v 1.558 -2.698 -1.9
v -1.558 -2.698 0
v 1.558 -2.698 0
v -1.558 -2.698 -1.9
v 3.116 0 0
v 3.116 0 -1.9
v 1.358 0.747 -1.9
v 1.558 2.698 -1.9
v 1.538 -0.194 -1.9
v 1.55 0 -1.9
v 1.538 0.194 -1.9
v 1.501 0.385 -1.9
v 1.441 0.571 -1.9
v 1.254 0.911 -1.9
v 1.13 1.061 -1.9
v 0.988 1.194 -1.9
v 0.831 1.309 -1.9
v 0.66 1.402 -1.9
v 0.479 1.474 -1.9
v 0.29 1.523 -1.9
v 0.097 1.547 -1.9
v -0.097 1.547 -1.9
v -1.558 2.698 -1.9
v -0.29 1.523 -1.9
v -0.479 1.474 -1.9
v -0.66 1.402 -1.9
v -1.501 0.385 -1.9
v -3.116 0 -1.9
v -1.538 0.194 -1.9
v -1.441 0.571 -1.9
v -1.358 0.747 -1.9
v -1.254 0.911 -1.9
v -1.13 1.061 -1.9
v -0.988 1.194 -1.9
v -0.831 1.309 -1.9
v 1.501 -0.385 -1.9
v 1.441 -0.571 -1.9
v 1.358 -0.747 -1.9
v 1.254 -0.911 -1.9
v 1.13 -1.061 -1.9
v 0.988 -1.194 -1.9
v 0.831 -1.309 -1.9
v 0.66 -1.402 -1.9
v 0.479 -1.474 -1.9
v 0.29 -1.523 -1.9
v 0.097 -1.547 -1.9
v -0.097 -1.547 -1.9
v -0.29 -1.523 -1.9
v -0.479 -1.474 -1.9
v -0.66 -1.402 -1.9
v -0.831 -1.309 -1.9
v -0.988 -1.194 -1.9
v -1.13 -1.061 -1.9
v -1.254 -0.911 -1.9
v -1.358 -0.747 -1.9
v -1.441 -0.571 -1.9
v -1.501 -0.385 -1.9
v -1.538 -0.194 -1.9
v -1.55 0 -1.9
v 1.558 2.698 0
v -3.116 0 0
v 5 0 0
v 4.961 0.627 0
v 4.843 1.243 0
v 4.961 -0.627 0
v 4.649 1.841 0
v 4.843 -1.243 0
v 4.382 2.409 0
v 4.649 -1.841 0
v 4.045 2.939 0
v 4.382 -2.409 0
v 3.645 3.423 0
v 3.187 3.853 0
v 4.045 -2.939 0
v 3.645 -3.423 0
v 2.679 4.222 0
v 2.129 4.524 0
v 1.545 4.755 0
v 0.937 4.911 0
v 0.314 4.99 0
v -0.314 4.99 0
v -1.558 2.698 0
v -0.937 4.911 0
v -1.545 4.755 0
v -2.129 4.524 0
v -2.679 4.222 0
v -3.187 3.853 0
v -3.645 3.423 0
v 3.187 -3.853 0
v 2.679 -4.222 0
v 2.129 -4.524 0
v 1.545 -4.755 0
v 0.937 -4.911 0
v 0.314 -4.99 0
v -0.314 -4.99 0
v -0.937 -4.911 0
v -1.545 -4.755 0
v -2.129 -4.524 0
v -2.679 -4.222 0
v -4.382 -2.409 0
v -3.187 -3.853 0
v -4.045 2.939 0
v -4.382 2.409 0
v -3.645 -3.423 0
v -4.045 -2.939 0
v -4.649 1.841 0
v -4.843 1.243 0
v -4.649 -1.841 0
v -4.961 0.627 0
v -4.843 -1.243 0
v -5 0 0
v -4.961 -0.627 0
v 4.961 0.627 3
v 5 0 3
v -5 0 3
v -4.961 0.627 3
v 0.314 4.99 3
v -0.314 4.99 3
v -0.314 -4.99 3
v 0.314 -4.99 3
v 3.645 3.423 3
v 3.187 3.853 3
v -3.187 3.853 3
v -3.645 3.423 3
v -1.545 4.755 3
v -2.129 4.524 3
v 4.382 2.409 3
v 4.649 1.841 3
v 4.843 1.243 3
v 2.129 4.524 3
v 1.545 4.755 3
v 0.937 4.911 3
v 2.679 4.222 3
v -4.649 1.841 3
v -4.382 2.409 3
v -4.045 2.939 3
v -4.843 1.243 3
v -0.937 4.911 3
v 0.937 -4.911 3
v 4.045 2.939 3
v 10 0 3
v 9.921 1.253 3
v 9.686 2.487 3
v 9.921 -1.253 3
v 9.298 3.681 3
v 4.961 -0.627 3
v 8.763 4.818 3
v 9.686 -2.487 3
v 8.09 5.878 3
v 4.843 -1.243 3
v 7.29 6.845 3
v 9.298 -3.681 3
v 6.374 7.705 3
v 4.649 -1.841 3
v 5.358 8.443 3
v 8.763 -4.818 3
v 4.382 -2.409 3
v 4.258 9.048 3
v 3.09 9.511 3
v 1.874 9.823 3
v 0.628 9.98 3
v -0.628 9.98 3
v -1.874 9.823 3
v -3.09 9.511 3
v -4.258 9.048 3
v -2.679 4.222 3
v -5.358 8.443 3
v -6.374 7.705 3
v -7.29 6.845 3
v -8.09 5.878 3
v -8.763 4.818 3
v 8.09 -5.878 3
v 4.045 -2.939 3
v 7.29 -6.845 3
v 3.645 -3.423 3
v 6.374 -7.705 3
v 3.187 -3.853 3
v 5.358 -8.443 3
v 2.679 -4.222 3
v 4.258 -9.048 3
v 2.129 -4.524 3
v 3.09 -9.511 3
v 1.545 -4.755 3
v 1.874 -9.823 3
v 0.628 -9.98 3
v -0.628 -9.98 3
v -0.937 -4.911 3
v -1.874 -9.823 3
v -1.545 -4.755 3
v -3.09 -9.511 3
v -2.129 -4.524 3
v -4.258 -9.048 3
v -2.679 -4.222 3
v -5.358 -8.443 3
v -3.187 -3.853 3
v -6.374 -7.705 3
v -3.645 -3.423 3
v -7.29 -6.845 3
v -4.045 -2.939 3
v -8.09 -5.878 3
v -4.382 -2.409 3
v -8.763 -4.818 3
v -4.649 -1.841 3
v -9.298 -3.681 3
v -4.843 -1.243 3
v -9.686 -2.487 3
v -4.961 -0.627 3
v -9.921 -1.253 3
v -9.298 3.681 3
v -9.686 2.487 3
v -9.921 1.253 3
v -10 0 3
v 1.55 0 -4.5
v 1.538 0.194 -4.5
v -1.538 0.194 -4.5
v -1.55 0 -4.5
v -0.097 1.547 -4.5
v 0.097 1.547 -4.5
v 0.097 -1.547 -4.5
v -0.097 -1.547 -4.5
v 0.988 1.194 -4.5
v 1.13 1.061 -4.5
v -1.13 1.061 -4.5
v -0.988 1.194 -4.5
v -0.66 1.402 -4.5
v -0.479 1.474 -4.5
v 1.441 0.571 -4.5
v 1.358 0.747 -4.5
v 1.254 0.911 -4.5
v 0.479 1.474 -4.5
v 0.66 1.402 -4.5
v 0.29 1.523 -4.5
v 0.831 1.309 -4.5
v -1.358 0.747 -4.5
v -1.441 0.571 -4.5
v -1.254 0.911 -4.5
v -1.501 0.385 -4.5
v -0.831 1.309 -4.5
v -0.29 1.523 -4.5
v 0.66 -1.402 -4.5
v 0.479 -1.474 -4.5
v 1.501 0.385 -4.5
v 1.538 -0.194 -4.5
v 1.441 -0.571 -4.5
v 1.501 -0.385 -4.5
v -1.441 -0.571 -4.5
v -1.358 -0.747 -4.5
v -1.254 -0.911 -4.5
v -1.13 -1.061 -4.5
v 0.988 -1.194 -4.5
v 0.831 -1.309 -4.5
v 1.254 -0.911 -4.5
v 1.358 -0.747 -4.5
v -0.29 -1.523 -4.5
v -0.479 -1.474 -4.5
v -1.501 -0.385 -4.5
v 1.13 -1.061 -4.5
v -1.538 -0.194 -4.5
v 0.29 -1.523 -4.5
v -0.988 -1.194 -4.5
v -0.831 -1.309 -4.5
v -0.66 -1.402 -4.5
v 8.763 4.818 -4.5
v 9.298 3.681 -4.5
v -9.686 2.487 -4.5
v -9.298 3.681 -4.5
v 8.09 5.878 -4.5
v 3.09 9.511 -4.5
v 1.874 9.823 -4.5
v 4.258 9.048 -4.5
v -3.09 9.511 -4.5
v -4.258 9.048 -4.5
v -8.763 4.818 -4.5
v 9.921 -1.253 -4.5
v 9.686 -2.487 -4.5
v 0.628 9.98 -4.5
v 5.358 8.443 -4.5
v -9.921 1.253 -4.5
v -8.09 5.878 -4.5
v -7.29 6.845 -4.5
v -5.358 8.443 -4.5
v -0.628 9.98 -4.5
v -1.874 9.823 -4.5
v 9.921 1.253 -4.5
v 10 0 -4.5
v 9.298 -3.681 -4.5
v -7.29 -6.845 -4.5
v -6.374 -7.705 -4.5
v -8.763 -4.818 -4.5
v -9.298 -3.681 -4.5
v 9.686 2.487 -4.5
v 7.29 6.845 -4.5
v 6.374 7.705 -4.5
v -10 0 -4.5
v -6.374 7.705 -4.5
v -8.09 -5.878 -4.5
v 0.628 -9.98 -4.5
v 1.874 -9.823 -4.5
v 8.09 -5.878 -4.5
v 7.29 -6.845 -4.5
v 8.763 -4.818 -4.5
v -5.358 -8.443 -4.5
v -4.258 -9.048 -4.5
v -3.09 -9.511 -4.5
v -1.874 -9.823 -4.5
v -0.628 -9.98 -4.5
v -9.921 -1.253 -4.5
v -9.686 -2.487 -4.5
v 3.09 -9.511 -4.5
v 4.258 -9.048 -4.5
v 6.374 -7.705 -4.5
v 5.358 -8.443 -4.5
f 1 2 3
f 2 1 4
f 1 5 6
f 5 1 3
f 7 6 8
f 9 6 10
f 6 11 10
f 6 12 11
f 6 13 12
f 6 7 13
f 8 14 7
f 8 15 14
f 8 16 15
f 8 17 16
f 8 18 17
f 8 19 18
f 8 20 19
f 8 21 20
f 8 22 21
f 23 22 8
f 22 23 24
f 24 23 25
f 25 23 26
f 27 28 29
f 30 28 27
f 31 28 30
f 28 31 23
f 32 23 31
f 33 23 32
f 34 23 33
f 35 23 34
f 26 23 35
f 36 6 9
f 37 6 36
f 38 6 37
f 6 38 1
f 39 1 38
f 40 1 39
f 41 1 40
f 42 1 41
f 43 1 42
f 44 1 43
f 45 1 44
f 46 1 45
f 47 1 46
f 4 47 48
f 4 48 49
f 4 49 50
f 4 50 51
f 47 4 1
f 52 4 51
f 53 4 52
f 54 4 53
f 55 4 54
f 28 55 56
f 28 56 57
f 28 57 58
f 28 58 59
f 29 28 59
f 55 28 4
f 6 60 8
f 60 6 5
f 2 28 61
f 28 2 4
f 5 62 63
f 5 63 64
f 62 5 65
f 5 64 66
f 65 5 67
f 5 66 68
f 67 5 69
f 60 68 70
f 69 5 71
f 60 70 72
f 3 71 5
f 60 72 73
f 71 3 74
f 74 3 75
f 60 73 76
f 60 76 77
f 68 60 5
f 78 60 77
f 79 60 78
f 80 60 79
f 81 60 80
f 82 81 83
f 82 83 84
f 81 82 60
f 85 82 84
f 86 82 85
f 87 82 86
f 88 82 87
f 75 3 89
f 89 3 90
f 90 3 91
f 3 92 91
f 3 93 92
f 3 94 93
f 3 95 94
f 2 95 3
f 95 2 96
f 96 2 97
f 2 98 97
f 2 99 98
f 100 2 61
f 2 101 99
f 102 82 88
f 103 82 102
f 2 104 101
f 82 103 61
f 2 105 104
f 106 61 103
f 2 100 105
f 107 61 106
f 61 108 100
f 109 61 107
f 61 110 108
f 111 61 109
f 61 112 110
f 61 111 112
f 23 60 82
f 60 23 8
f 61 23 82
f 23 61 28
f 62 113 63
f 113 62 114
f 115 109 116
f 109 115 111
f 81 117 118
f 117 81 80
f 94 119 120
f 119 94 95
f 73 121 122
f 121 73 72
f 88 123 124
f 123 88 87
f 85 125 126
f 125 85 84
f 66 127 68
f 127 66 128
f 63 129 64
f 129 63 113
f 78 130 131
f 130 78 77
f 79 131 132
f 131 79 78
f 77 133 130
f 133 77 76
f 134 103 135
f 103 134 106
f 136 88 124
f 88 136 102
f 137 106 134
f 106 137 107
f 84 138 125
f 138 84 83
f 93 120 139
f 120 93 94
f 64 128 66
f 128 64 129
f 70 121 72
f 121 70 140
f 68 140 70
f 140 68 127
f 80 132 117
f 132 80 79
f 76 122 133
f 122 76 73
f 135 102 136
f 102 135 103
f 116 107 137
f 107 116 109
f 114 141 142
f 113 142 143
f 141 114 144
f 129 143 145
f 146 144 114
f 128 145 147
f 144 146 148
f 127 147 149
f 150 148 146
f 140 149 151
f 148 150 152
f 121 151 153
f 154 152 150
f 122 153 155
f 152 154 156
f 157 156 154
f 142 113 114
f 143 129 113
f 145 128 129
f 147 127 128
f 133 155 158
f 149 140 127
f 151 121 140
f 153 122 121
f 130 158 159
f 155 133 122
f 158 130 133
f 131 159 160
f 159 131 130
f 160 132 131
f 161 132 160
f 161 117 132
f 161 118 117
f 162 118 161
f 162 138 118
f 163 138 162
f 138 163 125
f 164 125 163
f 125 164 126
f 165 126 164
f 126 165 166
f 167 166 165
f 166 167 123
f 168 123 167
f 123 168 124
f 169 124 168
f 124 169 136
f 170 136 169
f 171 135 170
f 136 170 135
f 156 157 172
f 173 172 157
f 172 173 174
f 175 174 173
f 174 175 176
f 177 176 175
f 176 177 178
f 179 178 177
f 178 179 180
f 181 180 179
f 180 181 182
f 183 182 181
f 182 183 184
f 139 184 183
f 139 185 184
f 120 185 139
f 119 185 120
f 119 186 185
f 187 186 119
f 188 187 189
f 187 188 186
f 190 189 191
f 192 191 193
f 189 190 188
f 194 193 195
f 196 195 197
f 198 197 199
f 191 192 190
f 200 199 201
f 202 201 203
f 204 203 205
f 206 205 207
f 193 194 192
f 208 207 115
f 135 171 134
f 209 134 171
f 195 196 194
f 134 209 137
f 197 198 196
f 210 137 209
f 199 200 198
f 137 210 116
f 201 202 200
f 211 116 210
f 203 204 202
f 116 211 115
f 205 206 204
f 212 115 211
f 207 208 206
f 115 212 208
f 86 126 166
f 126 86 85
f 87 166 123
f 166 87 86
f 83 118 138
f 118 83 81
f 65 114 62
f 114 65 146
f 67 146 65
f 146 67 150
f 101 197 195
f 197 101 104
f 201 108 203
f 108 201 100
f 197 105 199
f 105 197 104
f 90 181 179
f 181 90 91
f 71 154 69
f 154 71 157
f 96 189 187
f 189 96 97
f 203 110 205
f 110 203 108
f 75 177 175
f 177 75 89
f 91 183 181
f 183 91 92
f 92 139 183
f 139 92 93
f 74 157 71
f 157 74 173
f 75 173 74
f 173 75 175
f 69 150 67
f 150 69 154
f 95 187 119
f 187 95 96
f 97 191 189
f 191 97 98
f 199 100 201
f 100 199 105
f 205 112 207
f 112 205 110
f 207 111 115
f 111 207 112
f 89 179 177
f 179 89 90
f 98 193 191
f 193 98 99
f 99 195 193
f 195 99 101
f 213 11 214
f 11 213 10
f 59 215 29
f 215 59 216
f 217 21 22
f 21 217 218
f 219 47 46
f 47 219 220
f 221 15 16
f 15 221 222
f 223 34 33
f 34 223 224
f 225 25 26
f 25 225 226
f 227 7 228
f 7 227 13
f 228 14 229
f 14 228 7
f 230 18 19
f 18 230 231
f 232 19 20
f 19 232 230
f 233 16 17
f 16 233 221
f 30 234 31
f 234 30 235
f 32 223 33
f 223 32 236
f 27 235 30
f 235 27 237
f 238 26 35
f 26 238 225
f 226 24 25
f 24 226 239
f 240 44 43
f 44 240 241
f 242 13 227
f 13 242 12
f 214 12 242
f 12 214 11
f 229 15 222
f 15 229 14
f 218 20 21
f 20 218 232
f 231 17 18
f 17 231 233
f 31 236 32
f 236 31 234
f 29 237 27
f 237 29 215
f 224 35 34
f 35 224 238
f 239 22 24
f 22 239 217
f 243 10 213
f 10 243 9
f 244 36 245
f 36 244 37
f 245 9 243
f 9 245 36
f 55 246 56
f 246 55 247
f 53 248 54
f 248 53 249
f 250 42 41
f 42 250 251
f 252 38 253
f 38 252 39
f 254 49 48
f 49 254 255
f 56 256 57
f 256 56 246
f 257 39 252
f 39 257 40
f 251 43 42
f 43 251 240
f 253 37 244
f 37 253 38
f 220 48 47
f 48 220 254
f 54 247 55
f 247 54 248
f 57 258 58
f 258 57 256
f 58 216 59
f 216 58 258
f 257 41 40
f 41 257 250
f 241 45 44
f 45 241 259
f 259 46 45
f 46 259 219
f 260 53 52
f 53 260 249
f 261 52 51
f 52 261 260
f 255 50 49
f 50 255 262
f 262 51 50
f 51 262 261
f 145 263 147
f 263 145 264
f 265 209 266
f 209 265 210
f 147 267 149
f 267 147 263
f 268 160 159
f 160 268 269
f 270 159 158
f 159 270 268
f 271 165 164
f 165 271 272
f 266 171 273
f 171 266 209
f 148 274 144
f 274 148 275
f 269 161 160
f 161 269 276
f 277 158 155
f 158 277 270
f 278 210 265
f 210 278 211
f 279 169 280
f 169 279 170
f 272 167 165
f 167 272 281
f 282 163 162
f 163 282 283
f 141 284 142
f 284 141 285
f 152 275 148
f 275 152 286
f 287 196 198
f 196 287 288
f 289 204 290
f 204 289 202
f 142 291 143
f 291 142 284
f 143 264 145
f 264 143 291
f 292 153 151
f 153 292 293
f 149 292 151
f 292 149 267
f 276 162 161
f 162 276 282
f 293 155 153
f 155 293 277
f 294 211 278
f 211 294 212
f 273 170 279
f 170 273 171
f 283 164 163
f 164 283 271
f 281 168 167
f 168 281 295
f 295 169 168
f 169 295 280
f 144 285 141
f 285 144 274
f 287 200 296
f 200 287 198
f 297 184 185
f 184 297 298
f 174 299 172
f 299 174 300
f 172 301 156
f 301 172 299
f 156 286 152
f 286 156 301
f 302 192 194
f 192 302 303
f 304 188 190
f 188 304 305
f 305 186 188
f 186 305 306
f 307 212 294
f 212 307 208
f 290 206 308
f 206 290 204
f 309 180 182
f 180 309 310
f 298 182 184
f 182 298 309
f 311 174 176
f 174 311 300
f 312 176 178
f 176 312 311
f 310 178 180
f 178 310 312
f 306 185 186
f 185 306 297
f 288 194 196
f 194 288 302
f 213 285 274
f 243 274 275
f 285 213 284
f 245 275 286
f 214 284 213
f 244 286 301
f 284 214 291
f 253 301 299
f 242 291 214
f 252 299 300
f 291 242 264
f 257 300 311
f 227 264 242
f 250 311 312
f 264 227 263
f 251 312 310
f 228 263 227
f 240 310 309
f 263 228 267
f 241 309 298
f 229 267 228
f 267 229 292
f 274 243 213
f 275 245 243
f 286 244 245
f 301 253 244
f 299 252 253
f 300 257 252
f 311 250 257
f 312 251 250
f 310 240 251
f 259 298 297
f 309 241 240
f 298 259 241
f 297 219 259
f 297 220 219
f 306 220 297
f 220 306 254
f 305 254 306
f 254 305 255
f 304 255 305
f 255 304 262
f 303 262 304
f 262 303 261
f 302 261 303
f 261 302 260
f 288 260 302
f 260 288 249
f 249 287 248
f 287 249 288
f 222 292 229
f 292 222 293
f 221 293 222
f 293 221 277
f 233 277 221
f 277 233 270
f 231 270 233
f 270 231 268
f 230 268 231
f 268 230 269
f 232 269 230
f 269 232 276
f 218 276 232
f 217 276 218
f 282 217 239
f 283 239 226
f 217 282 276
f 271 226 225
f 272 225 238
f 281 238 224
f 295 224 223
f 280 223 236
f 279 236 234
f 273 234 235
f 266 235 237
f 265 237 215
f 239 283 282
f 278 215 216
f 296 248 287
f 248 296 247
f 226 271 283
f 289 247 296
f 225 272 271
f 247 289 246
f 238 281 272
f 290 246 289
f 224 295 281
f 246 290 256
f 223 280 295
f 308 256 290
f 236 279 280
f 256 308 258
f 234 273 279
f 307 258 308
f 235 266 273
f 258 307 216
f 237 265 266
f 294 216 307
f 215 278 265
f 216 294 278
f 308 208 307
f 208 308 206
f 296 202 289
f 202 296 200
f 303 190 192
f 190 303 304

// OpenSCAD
$fn = 50;

difference() {
	union() {
		translate(v = [0, 0, -4.5]) {
			cylinder(h = 7.5, r = 10.0);
		}
	}
	union() {
		translate(v = [0, 0, 0]) {
			rotate(a = [0, 0, 0]) {
				difference() {
					union() {
						translate(v = [0, 0, -1.9]) {
							linear_extrude(height = 1.9) {
								polygon(points = [[3.1158, 0.0], [1.5579000000000005, 2.698361953111554], [-1.5578999999999994, 2.6983619531115544], [-3.1158, 3.815754496783323e-16], [-1.5579000000000014, -2.6983619531115535], [1.557899999999998, -2.6983619531115552]]);
							}
						}
					}
					union();
				}
			}
		}
		#cylinder(h = 3, r = 5.0);
		#translate(v = [0, 0, -100.0]) {
			cylinder(h = 200, r = 1.55);
		}
	}
}
